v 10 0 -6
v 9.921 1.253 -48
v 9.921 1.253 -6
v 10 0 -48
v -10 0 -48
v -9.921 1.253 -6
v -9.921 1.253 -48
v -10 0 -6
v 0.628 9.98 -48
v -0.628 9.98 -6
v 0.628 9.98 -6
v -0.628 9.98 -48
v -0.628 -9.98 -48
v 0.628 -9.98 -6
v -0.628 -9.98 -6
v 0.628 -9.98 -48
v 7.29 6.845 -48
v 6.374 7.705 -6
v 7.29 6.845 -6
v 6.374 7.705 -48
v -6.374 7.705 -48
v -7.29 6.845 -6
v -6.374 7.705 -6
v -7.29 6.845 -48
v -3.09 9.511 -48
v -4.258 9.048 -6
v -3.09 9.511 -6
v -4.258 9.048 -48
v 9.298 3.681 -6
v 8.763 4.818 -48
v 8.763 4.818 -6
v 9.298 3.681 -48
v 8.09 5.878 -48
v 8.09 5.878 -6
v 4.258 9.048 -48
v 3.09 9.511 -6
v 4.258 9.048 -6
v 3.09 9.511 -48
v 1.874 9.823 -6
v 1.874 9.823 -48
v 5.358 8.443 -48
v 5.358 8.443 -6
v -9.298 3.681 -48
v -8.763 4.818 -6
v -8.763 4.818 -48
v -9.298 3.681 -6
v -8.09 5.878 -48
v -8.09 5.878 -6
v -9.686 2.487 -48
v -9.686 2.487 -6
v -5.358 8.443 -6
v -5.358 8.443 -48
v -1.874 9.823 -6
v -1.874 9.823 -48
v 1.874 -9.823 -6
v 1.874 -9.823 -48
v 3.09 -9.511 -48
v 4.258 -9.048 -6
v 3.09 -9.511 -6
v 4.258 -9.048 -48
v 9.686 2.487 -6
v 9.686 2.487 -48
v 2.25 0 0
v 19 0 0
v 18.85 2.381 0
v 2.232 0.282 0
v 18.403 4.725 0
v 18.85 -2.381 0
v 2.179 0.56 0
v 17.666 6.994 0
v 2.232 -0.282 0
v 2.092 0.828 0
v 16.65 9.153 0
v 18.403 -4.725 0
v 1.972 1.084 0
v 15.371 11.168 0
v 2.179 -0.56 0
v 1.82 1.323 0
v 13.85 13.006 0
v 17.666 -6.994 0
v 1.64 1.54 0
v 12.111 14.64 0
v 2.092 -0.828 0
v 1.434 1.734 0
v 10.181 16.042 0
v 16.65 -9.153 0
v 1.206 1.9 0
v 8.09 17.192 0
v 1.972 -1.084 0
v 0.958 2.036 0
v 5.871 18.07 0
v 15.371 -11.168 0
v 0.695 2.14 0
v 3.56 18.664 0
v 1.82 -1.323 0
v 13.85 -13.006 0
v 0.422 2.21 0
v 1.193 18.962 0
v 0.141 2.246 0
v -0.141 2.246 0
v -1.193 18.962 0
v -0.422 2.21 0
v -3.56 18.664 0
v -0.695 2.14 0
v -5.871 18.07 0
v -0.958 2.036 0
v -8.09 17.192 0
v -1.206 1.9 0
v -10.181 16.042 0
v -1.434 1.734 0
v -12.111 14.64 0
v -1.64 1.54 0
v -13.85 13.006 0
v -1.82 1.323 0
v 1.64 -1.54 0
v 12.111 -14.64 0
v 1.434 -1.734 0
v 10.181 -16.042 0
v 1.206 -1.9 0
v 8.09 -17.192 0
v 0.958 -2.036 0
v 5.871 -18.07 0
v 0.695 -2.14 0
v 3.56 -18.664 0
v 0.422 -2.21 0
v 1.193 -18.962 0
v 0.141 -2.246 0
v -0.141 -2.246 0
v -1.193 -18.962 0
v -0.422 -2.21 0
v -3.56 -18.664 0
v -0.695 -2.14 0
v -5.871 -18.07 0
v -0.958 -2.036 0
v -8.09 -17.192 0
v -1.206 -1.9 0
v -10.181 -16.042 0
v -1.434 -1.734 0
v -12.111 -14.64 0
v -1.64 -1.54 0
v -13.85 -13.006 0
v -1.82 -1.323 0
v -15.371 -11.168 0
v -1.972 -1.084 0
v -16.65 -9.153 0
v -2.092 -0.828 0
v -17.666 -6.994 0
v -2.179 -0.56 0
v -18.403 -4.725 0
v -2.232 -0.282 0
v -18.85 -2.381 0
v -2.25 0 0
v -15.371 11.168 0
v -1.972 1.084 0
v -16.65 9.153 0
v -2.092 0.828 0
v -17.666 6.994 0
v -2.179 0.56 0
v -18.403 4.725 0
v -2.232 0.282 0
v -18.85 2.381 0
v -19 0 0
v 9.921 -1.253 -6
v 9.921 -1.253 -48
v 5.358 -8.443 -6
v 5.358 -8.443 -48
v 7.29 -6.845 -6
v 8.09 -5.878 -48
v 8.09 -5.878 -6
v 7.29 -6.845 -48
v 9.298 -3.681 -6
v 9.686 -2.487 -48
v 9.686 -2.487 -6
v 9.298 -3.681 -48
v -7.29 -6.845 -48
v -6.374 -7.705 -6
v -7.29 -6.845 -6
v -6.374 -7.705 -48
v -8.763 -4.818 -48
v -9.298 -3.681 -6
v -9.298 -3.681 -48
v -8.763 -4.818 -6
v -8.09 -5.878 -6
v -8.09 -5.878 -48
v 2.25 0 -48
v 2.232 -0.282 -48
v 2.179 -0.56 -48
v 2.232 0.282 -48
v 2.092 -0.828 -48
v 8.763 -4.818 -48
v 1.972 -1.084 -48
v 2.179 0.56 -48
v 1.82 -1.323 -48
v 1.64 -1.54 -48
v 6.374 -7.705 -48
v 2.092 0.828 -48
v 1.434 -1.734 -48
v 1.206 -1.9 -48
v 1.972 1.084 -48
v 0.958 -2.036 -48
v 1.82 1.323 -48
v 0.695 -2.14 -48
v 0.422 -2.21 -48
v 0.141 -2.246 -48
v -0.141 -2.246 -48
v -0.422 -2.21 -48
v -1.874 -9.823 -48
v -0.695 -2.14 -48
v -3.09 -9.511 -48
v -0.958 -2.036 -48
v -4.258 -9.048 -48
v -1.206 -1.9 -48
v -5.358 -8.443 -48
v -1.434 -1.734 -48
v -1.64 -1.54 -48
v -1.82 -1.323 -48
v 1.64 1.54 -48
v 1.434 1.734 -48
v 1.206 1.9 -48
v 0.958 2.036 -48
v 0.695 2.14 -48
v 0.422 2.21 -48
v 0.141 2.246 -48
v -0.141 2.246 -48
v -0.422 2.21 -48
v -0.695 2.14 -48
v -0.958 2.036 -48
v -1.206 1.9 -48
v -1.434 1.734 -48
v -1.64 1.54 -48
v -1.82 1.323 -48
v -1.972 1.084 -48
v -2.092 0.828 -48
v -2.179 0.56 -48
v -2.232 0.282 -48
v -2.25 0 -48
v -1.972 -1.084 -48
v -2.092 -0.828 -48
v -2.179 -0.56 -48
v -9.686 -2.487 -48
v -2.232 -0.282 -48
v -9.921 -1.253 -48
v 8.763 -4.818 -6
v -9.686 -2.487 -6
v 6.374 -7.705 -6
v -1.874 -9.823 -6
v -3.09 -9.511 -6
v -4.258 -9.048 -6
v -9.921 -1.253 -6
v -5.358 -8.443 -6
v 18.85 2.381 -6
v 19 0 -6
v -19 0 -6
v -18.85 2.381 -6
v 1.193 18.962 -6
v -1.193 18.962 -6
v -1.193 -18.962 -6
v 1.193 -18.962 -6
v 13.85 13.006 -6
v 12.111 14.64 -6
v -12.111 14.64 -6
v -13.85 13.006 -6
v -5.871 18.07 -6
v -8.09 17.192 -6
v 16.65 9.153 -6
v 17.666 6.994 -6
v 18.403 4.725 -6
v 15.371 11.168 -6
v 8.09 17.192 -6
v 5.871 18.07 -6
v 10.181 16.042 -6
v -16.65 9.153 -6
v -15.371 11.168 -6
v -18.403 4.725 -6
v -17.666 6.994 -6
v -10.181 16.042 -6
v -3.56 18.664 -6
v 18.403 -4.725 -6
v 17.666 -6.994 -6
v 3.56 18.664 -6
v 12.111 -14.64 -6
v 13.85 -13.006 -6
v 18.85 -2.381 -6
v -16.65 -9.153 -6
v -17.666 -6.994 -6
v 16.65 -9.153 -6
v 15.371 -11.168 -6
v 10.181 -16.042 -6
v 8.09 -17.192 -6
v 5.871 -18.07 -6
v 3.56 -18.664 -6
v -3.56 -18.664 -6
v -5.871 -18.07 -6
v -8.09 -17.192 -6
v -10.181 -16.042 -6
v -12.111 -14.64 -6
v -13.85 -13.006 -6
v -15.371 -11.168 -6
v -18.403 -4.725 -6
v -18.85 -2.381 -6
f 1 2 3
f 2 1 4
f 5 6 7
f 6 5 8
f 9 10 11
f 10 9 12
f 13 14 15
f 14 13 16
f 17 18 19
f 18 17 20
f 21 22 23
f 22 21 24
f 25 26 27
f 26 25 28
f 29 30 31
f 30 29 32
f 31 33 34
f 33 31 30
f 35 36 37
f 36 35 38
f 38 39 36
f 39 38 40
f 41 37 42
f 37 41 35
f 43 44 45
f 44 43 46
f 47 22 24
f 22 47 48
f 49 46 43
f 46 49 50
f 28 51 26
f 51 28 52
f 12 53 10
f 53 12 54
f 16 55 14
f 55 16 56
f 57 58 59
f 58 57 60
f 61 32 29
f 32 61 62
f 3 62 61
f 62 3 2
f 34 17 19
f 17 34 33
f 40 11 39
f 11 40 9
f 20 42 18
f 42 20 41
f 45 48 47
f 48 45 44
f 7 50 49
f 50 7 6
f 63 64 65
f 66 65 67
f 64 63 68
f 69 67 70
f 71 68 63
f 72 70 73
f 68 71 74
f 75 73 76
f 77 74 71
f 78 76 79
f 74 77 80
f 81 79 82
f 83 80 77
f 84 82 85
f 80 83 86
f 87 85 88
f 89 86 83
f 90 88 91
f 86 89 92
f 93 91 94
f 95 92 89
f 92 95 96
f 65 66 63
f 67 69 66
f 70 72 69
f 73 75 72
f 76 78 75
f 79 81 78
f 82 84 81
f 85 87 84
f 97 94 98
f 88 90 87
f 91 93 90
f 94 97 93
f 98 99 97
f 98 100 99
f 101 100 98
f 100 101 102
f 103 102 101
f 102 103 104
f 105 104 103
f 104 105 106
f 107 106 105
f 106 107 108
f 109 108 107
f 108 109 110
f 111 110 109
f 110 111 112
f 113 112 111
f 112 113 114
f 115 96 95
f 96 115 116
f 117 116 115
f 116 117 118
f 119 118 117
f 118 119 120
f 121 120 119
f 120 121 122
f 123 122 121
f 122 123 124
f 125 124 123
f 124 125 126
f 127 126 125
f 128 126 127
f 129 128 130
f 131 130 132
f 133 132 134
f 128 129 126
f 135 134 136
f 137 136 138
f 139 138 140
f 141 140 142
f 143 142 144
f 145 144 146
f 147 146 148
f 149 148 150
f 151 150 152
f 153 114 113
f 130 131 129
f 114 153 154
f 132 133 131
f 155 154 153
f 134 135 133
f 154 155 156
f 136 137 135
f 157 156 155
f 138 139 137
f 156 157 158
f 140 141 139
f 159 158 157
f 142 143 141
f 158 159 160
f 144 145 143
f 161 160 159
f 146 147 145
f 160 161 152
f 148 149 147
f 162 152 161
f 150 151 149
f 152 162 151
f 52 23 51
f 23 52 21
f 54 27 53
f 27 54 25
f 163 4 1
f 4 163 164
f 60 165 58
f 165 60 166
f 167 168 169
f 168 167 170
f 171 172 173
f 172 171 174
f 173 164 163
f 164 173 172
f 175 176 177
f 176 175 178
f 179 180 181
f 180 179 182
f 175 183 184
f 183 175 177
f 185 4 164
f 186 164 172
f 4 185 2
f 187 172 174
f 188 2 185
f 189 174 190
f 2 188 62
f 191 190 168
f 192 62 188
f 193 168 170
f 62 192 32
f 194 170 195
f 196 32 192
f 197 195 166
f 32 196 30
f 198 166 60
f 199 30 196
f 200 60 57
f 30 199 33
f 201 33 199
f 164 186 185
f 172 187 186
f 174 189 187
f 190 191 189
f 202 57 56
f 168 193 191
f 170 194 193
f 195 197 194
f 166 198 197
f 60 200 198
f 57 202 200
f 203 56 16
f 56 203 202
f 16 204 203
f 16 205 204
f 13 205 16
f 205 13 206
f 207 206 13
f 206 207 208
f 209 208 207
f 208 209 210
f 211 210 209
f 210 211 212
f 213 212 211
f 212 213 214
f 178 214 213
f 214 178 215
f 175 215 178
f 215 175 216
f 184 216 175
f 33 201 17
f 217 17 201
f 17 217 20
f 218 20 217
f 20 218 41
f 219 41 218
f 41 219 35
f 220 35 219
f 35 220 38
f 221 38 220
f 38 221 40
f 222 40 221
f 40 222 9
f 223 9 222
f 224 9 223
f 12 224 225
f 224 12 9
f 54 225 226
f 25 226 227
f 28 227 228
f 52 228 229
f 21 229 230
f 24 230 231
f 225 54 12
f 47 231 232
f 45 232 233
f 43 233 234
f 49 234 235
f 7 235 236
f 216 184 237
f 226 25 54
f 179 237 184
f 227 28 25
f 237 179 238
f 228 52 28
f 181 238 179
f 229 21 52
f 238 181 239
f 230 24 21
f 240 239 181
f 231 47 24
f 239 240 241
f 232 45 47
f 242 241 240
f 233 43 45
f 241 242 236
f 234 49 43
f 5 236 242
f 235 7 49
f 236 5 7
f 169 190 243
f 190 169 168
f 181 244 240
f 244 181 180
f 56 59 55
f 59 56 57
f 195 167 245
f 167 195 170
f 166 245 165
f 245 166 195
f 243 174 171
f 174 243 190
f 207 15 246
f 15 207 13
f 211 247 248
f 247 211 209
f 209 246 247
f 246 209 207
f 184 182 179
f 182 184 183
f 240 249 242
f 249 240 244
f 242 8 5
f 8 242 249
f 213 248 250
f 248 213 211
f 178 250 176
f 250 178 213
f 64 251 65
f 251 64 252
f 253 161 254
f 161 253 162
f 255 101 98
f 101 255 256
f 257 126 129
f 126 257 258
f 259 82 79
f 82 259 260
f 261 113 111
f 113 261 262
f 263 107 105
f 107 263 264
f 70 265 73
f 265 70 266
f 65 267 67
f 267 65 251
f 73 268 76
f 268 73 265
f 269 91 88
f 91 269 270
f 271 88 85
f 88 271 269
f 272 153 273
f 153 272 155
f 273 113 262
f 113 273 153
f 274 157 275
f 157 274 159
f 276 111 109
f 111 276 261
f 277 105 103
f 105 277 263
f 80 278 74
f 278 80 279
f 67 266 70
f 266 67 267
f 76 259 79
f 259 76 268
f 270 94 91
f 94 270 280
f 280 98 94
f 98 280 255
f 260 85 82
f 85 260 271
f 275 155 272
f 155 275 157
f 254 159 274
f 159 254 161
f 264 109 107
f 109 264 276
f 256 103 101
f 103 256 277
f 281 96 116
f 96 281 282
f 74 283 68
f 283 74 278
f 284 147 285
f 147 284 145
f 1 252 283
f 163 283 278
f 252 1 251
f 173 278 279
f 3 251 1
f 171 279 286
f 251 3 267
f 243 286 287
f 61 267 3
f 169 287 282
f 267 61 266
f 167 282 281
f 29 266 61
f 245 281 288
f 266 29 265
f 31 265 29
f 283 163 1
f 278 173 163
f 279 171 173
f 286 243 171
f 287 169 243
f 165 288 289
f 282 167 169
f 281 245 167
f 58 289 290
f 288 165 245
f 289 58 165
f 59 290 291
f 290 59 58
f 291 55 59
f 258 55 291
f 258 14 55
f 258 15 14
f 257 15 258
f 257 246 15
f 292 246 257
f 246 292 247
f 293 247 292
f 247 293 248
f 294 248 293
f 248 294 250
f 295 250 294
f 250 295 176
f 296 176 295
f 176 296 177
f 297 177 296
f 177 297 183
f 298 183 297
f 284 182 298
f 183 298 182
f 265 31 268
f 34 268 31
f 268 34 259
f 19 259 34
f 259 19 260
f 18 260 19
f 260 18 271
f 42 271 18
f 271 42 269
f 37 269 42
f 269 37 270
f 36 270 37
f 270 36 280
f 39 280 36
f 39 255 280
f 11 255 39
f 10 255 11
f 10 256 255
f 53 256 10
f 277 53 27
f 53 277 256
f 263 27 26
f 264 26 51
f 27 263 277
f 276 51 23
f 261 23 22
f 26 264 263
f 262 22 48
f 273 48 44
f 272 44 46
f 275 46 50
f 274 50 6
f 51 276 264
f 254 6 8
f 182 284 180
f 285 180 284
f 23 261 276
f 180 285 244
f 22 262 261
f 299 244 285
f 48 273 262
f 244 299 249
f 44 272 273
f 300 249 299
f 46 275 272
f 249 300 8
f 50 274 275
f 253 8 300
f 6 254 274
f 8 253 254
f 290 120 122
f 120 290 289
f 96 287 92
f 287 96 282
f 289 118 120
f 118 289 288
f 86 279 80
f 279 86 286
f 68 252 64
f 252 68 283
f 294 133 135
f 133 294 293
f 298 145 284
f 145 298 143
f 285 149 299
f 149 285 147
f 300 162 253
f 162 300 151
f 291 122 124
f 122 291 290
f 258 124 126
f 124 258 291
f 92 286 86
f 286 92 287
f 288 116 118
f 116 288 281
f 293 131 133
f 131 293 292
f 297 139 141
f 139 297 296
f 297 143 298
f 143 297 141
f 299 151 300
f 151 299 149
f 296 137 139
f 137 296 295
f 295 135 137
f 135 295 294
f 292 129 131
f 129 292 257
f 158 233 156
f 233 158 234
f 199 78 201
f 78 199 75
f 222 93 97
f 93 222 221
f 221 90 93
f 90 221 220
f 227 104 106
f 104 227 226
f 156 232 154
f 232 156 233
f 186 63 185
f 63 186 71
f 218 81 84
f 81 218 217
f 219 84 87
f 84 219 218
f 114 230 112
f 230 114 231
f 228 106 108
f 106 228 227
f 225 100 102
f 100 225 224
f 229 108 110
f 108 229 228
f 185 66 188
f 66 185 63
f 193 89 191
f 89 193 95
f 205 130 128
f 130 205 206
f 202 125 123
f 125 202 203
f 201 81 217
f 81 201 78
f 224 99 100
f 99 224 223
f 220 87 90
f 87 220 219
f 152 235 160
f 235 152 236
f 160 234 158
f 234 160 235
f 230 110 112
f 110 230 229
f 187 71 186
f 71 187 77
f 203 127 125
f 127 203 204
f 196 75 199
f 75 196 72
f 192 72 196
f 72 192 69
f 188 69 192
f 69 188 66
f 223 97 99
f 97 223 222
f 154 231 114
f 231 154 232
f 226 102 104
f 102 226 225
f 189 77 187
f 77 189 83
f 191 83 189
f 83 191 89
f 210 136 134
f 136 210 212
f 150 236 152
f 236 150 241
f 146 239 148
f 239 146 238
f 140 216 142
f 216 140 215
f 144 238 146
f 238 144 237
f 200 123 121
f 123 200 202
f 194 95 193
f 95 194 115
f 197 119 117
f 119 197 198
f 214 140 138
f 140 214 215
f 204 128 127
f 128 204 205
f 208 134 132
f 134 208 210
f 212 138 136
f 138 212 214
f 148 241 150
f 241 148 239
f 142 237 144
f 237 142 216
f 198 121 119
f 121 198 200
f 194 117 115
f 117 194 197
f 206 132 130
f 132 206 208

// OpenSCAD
$fn = 50;


difference() {
	union() {
		translate(v = [0, 0, -48.0000000000]) {
			cylinder(h = 48, r = 10.0000000000);
		}
		translate(v = [0, 0, -6.0000000000]) {
			cylinder(h = 6, r = 19.0000000000);
		}
	}
	union() {
		#translate(v = [0, 0, -48]) {
			cylinder(h = 48, r = 2.2500000000);
		}
	}
}
